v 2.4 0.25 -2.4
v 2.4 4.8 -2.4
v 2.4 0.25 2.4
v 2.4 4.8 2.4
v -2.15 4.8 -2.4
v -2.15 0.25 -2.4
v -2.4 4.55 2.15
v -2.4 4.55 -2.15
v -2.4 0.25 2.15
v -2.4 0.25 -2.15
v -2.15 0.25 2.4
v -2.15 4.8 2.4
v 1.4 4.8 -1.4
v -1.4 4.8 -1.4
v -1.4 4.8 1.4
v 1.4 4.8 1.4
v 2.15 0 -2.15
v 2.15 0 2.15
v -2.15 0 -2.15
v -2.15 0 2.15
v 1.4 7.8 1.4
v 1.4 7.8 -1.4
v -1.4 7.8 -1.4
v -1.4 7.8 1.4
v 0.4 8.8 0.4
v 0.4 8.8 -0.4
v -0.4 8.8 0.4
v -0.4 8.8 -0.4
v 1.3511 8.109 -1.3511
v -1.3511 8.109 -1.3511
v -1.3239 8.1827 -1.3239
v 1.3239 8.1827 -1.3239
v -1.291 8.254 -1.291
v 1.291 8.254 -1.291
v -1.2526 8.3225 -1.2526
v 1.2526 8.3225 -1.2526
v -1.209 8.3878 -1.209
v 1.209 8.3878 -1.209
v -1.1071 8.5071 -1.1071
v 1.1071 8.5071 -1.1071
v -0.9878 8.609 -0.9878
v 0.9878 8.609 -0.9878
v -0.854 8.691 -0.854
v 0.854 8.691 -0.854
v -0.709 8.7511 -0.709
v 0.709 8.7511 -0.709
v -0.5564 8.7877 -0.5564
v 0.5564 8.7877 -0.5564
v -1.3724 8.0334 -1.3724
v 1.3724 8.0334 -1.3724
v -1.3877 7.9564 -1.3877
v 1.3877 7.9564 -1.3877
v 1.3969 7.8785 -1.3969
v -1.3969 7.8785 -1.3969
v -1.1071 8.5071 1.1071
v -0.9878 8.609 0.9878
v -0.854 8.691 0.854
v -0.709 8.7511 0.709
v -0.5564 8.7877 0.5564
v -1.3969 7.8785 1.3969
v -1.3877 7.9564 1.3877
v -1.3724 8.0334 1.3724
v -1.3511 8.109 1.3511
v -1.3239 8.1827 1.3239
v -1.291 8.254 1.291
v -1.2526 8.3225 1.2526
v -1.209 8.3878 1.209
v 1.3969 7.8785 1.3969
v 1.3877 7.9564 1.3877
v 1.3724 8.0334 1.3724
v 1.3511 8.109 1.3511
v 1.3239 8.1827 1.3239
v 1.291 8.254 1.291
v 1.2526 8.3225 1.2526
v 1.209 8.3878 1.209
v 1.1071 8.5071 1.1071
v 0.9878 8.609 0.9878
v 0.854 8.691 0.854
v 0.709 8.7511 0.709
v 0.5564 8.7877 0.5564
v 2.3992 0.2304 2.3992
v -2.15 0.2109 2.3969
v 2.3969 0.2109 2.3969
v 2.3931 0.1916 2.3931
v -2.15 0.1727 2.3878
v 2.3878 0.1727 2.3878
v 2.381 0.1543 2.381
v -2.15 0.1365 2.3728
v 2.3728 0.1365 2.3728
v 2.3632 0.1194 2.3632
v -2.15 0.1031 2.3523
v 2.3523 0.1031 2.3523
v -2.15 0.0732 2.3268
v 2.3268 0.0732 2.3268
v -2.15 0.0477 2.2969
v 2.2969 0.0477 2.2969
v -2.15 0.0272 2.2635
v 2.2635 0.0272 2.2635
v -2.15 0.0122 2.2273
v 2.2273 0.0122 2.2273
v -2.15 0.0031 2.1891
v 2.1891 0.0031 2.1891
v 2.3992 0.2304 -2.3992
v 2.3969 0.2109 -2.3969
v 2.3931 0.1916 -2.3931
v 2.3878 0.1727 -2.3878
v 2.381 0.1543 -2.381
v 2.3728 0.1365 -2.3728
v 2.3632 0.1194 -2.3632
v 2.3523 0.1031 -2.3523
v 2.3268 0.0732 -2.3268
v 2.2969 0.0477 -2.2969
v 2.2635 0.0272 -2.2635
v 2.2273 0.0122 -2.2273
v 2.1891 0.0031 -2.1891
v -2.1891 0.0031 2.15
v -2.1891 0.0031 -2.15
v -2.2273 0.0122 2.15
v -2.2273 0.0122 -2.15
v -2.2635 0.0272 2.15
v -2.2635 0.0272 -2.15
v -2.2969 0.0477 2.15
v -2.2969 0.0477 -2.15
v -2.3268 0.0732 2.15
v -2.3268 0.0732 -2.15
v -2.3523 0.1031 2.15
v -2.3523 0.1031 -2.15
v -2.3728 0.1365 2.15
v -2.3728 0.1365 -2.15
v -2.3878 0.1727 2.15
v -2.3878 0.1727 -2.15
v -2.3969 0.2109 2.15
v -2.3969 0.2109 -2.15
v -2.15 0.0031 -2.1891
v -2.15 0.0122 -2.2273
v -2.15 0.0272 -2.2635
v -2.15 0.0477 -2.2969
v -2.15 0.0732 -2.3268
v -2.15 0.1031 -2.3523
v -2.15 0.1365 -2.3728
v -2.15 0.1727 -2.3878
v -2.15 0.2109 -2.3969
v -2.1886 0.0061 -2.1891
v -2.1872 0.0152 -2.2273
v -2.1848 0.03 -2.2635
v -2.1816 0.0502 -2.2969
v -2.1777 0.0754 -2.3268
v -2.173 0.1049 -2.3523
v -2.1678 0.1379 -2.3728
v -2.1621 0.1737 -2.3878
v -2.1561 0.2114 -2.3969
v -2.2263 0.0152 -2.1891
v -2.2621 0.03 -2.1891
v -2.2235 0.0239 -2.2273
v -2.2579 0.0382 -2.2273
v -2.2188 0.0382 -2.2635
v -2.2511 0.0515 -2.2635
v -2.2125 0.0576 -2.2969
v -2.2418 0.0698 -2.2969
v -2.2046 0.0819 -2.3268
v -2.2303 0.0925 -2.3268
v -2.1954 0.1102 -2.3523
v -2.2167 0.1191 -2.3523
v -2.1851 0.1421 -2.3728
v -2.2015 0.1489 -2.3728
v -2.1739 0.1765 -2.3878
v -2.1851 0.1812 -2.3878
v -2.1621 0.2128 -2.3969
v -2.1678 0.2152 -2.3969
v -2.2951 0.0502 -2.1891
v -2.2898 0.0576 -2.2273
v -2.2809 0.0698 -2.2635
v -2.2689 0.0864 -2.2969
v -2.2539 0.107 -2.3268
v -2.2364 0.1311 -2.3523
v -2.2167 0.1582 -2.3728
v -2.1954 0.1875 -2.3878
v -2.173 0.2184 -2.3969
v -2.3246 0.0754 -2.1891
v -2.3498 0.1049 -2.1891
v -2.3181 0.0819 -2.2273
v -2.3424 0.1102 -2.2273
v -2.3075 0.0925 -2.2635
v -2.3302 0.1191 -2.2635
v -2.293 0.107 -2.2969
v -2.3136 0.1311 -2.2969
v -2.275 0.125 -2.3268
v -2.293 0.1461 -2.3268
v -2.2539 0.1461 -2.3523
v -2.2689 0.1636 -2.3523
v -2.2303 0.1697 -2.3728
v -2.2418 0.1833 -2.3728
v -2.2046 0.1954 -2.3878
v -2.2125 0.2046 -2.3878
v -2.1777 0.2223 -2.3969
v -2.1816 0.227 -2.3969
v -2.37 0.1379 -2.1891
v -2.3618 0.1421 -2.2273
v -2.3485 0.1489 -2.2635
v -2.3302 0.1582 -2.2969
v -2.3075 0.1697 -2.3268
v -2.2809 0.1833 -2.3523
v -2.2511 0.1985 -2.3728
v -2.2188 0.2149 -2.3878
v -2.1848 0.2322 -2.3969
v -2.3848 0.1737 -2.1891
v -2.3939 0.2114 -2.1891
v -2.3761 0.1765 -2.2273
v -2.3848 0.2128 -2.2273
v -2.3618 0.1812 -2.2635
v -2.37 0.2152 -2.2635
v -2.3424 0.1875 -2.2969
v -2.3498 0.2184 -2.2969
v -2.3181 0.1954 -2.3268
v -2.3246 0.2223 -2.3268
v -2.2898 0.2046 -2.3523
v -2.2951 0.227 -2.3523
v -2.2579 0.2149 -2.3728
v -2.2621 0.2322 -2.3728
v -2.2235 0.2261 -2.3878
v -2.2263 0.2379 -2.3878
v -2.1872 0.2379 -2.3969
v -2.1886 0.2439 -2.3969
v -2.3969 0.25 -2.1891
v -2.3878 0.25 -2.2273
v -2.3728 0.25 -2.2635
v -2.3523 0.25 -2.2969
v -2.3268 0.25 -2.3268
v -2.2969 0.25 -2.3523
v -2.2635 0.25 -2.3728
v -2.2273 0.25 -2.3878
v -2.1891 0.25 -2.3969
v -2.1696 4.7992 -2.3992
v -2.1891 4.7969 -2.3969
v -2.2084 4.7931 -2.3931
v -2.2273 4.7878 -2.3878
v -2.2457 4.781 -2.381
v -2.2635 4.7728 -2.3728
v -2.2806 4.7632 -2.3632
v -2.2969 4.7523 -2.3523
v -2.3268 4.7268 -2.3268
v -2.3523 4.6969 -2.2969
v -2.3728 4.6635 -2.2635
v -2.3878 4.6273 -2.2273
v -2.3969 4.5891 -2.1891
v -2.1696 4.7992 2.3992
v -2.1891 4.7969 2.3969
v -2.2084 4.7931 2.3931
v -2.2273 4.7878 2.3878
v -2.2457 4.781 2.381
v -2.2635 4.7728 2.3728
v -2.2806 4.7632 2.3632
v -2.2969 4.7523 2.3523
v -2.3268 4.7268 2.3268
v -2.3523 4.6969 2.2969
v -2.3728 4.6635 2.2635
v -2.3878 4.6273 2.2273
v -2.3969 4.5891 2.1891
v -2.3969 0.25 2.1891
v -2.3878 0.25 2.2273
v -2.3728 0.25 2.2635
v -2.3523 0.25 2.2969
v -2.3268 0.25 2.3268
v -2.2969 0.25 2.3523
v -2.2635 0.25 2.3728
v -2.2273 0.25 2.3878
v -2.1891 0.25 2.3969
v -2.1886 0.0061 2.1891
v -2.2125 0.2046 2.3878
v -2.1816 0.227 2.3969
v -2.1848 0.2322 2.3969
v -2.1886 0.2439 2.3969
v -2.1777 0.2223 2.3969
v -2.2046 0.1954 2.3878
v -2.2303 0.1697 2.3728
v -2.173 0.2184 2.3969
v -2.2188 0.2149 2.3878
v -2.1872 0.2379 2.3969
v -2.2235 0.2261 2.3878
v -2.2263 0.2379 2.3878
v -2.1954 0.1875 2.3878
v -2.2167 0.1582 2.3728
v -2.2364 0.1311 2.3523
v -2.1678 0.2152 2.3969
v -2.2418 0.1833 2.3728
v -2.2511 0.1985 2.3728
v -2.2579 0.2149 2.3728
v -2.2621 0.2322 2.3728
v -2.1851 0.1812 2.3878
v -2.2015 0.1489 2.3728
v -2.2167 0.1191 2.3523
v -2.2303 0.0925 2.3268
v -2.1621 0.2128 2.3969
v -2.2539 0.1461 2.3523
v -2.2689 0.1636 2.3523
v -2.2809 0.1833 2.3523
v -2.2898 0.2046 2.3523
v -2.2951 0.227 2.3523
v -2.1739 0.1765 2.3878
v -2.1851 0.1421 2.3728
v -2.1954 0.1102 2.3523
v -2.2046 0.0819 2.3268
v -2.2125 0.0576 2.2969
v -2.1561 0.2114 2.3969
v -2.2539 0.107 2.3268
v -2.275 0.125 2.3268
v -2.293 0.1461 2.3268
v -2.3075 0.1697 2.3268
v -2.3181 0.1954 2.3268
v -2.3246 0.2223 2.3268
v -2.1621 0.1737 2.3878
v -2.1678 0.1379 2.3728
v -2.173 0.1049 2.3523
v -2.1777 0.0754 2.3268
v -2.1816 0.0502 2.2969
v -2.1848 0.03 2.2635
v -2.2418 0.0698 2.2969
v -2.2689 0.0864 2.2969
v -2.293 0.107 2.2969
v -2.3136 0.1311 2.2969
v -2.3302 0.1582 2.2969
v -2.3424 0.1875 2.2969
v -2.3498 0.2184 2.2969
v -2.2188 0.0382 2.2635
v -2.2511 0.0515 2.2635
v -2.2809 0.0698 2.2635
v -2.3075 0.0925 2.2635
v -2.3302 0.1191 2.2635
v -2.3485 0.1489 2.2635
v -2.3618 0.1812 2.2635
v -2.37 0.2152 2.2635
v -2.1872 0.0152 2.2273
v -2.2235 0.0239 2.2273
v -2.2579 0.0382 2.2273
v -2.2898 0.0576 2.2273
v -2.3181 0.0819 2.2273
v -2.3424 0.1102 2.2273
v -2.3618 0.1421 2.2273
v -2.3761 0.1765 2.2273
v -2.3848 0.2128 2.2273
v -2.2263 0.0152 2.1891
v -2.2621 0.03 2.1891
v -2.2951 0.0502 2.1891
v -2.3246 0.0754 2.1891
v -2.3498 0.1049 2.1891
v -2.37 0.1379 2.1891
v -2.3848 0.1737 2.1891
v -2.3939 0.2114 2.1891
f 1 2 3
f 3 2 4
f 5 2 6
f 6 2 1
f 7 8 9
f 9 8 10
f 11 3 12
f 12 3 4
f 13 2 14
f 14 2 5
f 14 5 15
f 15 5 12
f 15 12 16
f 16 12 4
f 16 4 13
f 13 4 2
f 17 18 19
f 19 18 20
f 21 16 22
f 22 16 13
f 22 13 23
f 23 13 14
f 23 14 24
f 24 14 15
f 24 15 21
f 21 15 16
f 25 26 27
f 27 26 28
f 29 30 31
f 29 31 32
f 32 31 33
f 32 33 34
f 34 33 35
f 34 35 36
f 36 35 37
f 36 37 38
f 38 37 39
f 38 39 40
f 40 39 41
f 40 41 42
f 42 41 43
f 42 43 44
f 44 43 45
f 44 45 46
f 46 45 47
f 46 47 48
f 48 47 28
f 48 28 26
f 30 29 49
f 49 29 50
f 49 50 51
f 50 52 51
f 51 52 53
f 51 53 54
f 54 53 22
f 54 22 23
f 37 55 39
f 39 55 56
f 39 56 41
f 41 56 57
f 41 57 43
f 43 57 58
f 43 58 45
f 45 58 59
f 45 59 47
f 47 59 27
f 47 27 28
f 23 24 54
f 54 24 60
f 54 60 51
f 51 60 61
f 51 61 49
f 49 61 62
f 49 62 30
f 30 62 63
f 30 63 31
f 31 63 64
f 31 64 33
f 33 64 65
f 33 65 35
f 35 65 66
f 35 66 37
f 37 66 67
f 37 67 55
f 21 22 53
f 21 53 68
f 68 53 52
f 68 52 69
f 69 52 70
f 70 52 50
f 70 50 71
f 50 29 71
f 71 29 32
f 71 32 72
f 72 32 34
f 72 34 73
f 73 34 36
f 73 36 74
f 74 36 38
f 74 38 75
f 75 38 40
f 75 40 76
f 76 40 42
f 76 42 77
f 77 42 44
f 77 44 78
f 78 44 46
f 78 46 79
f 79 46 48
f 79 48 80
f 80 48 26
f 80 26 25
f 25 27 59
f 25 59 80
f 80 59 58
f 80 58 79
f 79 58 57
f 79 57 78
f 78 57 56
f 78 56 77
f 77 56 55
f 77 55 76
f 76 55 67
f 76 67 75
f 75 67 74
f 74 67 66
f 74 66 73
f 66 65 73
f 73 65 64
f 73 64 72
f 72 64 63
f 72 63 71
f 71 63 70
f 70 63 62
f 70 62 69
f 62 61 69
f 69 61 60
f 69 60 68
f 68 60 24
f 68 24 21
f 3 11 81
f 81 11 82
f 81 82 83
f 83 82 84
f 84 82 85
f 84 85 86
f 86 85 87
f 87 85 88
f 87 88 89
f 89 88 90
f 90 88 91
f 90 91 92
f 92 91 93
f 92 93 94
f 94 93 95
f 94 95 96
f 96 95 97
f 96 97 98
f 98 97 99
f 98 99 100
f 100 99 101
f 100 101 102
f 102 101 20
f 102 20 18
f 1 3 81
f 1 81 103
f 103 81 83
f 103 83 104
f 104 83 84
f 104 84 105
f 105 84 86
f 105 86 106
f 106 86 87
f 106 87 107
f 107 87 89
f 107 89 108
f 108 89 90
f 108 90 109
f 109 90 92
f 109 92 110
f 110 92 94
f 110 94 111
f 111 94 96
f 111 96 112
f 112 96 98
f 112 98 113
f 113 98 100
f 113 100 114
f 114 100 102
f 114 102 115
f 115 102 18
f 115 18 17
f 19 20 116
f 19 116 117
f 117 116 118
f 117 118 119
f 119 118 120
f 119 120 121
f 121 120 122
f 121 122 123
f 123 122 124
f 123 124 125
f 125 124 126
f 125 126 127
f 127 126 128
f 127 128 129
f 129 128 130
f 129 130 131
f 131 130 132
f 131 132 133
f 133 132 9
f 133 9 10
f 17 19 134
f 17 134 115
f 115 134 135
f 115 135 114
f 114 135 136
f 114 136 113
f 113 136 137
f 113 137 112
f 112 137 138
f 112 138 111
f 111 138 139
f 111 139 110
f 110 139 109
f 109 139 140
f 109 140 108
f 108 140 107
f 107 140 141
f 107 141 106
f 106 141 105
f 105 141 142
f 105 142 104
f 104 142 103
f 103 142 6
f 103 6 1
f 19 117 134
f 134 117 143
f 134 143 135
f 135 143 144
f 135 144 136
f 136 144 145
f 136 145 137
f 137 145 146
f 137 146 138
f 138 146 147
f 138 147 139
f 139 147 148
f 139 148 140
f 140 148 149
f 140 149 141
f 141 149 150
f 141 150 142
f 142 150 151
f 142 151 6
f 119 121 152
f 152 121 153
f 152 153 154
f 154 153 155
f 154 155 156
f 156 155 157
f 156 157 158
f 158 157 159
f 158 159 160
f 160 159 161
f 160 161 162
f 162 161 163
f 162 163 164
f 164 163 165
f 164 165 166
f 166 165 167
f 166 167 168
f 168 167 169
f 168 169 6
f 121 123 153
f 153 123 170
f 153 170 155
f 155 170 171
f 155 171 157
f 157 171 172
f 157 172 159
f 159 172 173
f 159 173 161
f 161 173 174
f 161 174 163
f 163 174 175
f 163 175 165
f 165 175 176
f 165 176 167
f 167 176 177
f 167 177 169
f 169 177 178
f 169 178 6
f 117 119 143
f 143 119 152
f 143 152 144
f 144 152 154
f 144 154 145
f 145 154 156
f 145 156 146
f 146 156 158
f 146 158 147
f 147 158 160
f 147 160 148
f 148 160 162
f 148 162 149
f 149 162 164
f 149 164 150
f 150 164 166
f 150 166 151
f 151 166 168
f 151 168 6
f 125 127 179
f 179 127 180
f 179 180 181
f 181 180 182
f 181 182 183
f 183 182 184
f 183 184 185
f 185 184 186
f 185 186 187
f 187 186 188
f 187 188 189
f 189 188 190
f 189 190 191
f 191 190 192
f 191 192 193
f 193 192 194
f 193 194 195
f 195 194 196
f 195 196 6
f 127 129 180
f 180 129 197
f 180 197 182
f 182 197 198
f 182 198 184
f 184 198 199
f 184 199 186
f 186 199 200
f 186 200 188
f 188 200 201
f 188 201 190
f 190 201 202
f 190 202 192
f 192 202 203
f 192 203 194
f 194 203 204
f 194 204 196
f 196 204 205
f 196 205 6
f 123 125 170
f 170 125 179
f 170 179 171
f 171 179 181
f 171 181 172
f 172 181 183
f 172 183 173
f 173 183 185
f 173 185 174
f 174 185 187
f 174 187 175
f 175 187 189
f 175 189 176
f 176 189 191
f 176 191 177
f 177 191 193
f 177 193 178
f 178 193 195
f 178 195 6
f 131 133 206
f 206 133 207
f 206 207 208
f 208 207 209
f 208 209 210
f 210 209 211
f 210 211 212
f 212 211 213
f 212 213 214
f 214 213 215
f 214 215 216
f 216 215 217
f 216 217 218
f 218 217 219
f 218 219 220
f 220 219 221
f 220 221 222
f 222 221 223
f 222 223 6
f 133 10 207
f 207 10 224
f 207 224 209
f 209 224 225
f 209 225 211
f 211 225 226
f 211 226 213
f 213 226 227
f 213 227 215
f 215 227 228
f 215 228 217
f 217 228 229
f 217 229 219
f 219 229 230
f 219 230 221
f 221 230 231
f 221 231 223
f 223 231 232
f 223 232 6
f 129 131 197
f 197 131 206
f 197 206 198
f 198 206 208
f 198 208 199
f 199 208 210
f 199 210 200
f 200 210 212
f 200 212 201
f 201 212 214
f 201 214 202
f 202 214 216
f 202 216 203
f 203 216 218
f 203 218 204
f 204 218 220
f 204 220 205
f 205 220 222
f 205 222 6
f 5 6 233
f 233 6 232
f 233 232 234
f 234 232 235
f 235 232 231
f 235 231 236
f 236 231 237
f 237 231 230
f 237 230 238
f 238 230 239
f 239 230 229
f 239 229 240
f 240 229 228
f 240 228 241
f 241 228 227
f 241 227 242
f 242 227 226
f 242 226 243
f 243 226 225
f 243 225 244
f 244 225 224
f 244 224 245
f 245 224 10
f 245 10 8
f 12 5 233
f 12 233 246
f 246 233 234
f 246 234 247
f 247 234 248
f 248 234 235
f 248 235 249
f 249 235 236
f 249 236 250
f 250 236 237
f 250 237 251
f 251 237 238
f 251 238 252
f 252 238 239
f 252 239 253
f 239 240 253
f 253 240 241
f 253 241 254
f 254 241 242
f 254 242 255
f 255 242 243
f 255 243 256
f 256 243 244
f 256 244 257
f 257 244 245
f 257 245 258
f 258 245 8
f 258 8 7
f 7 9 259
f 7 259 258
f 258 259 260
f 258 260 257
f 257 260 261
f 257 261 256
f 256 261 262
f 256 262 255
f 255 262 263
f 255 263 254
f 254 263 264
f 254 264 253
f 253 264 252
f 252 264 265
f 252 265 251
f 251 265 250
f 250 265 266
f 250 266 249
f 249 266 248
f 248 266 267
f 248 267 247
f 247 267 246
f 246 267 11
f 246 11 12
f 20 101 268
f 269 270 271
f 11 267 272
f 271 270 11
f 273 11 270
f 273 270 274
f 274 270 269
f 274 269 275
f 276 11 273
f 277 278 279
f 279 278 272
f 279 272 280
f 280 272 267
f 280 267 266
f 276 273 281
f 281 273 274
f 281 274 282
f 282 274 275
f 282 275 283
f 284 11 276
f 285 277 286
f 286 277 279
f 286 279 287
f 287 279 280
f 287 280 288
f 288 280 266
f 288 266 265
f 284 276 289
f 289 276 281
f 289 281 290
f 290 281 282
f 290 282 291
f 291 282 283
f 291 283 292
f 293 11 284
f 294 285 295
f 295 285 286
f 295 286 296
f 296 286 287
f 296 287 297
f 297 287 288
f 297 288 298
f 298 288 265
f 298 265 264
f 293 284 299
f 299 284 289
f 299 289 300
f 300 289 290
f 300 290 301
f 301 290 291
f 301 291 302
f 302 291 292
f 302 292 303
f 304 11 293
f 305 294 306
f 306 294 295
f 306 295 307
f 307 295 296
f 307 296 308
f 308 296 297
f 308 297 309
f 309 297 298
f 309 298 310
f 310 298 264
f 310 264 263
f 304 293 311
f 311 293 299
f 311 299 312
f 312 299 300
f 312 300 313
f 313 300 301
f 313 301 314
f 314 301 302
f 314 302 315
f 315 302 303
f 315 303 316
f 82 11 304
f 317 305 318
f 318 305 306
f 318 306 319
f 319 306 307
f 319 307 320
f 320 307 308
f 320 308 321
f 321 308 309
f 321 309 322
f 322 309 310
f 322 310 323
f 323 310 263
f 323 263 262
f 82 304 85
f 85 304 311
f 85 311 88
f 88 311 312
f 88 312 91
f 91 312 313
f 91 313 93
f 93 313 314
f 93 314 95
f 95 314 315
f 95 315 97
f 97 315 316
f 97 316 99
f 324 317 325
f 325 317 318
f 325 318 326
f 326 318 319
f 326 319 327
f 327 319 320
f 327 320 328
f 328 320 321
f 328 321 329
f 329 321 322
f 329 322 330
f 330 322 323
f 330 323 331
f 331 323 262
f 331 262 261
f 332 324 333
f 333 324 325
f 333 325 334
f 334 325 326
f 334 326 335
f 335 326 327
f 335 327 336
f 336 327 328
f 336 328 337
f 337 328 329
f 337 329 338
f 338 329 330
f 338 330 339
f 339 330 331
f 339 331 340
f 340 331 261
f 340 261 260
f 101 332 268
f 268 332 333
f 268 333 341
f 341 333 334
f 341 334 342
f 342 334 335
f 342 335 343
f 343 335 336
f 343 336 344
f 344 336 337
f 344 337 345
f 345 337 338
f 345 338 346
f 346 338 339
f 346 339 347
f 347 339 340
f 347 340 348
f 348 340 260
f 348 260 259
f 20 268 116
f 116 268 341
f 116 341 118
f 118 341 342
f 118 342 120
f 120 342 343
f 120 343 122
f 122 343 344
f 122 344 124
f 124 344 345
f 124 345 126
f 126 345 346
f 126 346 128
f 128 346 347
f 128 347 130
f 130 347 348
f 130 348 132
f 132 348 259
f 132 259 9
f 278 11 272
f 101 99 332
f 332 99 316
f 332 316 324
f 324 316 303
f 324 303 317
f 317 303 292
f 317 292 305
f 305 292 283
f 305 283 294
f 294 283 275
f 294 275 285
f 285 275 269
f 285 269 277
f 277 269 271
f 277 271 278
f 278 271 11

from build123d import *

# Parameters (mm, degrees)
SKETCH1_W           = 4.8
SKETCH1_H           = 4.8
BOSS_EXTRUDE1_DEPTH = 4.8
SKETCH2_W           = 2.8
SKETCH2_H           = 2.8
BOSS_EXTRUDE2_DEPTH = 4
FILLET1_R           = 1
FILLET2_R           = 0.25
FILLET3_R           = 0.25


with BuildPart() as part:
    # Sketch1 → Boss-Extrude1 (new body)
    with BuildSketch(Plane(origin=(0, 0, 0), x_dir=(1, 0, 0), z_dir=(0, 1, 0))):
        Rectangle(SKETCH1_W, SKETCH1_H)
    extrude(amount=BOSS_EXTRUDE1_DEPTH)

    # Sketch2 → Boss-Extrude2 (add)
    with BuildSketch(Plane(origin=(0, 4.8, 0), x_dir=(1, 0, 0), z_dir=(0, 1, 0))):
        Rectangle(SKETCH2_W, SKETCH2_H)
    extrude(amount=BOSS_EXTRUDE2_DEPTH)

    # Fillet1
    fillet1_edges = [part.edges().sort_by_distance(p)[0] for p in [
        (1.4, 8.8, 0),
        (0, 8.8, -1.4),
        (-1.4, 8.8, 0),
        (0, 8.8, 1.4),
    ]]
    fillet(fillet1_edges, radius=FILLET1_R)

    # Fillet2
    fillet2_edges = [part.edges().sort_by_distance(p)[0] for p in [
        (0, 0, 2.4),
        (-2.4, 0, 0),
        (0, 0, -2.4),
        (2.4, 0, 0),
    ]]
    fillet(fillet2_edges, radius=FILLET2_R)

    # Fillet3
    # the kernel refuses this fillet: 0.25 mm, written as the material it takes off along each edge
    with BuildSketch(Plane(origin=(-2.15, 0.25, 2.15), x_dir=(0, 0, 1), z_dir=(-1, 0, 0))) as fillet3_piece_1_section:
        Polygon((0, 0), (FILLET3_R, 0), (FILLET3_R, -FILLET3_R), (0, -FILLET3_R), align=None)
    fillet3_piece_1 = extrude(amount=FILLET3_R, mode=Mode.PRIVATE)
    fillet3_piece_1 = fillet3_piece_1 - Plane(origin=(-2.15, 0.25, 2.15), x_dir=(0, 0.7071067811865475, -0.7071067811865475), z_dir=(-1, 0, 0)) * Sphere(FILLET3_R, mode=Mode.PRIVATE)
    add(fillet3_piece_1, mode=Mode.SUBTRACT)
    with BuildSketch(Plane(origin=(-2.15, 0.25, -2.15), x_dir=(-1, 0, 0), z_dir=(0, 0, -1))) as fillet3_piece_2_section:
        Polygon((0, 0), (FILLET3_R, 0), (FILLET3_R, -FILLET3_R), (0, -FILLET3_R), align=None)
    fillet3_piece_2 = extrude(amount=FILLET3_R, mode=Mode.PRIVATE)
    fillet3_piece_2 = fillet3_piece_2 - Plane(origin=(-2.15, 0.25, -2.15), x_dir=(0.7071067811865475, 0.7071067811865475, 0), z_dir=(0, 0, -1)) * Sphere(FILLET3_R, mode=Mode.PRIVATE)
    add(fillet3_piece_2, mode=Mode.SUBTRACT)
    with BuildSketch(Plane(origin=(-2.4, 4.8, 3.025), x_dir=(0, -1, 0), z_dir=(0, 0, -1))) as fillet3_piece_3:
        with BuildLine():
            CenterArc((FILLET3_R, -FILLET3_R), FILLET3_R, 90, 90)
            Line((0, -FILLET3_R), (0, 0))
            Line((0, 0), (FILLET3_R, 0))
        make_face()
    extrude(amount=6.05, mode=Mode.SUBTRACT)
    with BuildSketch(Plane(origin=(-2.4, 0.25, 2.4), x_dir=(0, 0, -1), z_dir=(0, 1, 0)), Plane(origin=(-2.4, 0.25, -2.4), x_dir=(1, 0, 0), z_dir=(0, 1, 0))) as fillet3_piece_4:
        with BuildLine():
            CenterArc((FILLET3_R, -FILLET3_R), FILLET3_R, 90, 90)
            Line((0, -FILLET3_R), (0, 0))
            Line((0, 0), (FILLET3_R, 0))
        make_face()
    extrude(amount=5.175, mode=Mode.SUBTRACT)


solid = part.part
